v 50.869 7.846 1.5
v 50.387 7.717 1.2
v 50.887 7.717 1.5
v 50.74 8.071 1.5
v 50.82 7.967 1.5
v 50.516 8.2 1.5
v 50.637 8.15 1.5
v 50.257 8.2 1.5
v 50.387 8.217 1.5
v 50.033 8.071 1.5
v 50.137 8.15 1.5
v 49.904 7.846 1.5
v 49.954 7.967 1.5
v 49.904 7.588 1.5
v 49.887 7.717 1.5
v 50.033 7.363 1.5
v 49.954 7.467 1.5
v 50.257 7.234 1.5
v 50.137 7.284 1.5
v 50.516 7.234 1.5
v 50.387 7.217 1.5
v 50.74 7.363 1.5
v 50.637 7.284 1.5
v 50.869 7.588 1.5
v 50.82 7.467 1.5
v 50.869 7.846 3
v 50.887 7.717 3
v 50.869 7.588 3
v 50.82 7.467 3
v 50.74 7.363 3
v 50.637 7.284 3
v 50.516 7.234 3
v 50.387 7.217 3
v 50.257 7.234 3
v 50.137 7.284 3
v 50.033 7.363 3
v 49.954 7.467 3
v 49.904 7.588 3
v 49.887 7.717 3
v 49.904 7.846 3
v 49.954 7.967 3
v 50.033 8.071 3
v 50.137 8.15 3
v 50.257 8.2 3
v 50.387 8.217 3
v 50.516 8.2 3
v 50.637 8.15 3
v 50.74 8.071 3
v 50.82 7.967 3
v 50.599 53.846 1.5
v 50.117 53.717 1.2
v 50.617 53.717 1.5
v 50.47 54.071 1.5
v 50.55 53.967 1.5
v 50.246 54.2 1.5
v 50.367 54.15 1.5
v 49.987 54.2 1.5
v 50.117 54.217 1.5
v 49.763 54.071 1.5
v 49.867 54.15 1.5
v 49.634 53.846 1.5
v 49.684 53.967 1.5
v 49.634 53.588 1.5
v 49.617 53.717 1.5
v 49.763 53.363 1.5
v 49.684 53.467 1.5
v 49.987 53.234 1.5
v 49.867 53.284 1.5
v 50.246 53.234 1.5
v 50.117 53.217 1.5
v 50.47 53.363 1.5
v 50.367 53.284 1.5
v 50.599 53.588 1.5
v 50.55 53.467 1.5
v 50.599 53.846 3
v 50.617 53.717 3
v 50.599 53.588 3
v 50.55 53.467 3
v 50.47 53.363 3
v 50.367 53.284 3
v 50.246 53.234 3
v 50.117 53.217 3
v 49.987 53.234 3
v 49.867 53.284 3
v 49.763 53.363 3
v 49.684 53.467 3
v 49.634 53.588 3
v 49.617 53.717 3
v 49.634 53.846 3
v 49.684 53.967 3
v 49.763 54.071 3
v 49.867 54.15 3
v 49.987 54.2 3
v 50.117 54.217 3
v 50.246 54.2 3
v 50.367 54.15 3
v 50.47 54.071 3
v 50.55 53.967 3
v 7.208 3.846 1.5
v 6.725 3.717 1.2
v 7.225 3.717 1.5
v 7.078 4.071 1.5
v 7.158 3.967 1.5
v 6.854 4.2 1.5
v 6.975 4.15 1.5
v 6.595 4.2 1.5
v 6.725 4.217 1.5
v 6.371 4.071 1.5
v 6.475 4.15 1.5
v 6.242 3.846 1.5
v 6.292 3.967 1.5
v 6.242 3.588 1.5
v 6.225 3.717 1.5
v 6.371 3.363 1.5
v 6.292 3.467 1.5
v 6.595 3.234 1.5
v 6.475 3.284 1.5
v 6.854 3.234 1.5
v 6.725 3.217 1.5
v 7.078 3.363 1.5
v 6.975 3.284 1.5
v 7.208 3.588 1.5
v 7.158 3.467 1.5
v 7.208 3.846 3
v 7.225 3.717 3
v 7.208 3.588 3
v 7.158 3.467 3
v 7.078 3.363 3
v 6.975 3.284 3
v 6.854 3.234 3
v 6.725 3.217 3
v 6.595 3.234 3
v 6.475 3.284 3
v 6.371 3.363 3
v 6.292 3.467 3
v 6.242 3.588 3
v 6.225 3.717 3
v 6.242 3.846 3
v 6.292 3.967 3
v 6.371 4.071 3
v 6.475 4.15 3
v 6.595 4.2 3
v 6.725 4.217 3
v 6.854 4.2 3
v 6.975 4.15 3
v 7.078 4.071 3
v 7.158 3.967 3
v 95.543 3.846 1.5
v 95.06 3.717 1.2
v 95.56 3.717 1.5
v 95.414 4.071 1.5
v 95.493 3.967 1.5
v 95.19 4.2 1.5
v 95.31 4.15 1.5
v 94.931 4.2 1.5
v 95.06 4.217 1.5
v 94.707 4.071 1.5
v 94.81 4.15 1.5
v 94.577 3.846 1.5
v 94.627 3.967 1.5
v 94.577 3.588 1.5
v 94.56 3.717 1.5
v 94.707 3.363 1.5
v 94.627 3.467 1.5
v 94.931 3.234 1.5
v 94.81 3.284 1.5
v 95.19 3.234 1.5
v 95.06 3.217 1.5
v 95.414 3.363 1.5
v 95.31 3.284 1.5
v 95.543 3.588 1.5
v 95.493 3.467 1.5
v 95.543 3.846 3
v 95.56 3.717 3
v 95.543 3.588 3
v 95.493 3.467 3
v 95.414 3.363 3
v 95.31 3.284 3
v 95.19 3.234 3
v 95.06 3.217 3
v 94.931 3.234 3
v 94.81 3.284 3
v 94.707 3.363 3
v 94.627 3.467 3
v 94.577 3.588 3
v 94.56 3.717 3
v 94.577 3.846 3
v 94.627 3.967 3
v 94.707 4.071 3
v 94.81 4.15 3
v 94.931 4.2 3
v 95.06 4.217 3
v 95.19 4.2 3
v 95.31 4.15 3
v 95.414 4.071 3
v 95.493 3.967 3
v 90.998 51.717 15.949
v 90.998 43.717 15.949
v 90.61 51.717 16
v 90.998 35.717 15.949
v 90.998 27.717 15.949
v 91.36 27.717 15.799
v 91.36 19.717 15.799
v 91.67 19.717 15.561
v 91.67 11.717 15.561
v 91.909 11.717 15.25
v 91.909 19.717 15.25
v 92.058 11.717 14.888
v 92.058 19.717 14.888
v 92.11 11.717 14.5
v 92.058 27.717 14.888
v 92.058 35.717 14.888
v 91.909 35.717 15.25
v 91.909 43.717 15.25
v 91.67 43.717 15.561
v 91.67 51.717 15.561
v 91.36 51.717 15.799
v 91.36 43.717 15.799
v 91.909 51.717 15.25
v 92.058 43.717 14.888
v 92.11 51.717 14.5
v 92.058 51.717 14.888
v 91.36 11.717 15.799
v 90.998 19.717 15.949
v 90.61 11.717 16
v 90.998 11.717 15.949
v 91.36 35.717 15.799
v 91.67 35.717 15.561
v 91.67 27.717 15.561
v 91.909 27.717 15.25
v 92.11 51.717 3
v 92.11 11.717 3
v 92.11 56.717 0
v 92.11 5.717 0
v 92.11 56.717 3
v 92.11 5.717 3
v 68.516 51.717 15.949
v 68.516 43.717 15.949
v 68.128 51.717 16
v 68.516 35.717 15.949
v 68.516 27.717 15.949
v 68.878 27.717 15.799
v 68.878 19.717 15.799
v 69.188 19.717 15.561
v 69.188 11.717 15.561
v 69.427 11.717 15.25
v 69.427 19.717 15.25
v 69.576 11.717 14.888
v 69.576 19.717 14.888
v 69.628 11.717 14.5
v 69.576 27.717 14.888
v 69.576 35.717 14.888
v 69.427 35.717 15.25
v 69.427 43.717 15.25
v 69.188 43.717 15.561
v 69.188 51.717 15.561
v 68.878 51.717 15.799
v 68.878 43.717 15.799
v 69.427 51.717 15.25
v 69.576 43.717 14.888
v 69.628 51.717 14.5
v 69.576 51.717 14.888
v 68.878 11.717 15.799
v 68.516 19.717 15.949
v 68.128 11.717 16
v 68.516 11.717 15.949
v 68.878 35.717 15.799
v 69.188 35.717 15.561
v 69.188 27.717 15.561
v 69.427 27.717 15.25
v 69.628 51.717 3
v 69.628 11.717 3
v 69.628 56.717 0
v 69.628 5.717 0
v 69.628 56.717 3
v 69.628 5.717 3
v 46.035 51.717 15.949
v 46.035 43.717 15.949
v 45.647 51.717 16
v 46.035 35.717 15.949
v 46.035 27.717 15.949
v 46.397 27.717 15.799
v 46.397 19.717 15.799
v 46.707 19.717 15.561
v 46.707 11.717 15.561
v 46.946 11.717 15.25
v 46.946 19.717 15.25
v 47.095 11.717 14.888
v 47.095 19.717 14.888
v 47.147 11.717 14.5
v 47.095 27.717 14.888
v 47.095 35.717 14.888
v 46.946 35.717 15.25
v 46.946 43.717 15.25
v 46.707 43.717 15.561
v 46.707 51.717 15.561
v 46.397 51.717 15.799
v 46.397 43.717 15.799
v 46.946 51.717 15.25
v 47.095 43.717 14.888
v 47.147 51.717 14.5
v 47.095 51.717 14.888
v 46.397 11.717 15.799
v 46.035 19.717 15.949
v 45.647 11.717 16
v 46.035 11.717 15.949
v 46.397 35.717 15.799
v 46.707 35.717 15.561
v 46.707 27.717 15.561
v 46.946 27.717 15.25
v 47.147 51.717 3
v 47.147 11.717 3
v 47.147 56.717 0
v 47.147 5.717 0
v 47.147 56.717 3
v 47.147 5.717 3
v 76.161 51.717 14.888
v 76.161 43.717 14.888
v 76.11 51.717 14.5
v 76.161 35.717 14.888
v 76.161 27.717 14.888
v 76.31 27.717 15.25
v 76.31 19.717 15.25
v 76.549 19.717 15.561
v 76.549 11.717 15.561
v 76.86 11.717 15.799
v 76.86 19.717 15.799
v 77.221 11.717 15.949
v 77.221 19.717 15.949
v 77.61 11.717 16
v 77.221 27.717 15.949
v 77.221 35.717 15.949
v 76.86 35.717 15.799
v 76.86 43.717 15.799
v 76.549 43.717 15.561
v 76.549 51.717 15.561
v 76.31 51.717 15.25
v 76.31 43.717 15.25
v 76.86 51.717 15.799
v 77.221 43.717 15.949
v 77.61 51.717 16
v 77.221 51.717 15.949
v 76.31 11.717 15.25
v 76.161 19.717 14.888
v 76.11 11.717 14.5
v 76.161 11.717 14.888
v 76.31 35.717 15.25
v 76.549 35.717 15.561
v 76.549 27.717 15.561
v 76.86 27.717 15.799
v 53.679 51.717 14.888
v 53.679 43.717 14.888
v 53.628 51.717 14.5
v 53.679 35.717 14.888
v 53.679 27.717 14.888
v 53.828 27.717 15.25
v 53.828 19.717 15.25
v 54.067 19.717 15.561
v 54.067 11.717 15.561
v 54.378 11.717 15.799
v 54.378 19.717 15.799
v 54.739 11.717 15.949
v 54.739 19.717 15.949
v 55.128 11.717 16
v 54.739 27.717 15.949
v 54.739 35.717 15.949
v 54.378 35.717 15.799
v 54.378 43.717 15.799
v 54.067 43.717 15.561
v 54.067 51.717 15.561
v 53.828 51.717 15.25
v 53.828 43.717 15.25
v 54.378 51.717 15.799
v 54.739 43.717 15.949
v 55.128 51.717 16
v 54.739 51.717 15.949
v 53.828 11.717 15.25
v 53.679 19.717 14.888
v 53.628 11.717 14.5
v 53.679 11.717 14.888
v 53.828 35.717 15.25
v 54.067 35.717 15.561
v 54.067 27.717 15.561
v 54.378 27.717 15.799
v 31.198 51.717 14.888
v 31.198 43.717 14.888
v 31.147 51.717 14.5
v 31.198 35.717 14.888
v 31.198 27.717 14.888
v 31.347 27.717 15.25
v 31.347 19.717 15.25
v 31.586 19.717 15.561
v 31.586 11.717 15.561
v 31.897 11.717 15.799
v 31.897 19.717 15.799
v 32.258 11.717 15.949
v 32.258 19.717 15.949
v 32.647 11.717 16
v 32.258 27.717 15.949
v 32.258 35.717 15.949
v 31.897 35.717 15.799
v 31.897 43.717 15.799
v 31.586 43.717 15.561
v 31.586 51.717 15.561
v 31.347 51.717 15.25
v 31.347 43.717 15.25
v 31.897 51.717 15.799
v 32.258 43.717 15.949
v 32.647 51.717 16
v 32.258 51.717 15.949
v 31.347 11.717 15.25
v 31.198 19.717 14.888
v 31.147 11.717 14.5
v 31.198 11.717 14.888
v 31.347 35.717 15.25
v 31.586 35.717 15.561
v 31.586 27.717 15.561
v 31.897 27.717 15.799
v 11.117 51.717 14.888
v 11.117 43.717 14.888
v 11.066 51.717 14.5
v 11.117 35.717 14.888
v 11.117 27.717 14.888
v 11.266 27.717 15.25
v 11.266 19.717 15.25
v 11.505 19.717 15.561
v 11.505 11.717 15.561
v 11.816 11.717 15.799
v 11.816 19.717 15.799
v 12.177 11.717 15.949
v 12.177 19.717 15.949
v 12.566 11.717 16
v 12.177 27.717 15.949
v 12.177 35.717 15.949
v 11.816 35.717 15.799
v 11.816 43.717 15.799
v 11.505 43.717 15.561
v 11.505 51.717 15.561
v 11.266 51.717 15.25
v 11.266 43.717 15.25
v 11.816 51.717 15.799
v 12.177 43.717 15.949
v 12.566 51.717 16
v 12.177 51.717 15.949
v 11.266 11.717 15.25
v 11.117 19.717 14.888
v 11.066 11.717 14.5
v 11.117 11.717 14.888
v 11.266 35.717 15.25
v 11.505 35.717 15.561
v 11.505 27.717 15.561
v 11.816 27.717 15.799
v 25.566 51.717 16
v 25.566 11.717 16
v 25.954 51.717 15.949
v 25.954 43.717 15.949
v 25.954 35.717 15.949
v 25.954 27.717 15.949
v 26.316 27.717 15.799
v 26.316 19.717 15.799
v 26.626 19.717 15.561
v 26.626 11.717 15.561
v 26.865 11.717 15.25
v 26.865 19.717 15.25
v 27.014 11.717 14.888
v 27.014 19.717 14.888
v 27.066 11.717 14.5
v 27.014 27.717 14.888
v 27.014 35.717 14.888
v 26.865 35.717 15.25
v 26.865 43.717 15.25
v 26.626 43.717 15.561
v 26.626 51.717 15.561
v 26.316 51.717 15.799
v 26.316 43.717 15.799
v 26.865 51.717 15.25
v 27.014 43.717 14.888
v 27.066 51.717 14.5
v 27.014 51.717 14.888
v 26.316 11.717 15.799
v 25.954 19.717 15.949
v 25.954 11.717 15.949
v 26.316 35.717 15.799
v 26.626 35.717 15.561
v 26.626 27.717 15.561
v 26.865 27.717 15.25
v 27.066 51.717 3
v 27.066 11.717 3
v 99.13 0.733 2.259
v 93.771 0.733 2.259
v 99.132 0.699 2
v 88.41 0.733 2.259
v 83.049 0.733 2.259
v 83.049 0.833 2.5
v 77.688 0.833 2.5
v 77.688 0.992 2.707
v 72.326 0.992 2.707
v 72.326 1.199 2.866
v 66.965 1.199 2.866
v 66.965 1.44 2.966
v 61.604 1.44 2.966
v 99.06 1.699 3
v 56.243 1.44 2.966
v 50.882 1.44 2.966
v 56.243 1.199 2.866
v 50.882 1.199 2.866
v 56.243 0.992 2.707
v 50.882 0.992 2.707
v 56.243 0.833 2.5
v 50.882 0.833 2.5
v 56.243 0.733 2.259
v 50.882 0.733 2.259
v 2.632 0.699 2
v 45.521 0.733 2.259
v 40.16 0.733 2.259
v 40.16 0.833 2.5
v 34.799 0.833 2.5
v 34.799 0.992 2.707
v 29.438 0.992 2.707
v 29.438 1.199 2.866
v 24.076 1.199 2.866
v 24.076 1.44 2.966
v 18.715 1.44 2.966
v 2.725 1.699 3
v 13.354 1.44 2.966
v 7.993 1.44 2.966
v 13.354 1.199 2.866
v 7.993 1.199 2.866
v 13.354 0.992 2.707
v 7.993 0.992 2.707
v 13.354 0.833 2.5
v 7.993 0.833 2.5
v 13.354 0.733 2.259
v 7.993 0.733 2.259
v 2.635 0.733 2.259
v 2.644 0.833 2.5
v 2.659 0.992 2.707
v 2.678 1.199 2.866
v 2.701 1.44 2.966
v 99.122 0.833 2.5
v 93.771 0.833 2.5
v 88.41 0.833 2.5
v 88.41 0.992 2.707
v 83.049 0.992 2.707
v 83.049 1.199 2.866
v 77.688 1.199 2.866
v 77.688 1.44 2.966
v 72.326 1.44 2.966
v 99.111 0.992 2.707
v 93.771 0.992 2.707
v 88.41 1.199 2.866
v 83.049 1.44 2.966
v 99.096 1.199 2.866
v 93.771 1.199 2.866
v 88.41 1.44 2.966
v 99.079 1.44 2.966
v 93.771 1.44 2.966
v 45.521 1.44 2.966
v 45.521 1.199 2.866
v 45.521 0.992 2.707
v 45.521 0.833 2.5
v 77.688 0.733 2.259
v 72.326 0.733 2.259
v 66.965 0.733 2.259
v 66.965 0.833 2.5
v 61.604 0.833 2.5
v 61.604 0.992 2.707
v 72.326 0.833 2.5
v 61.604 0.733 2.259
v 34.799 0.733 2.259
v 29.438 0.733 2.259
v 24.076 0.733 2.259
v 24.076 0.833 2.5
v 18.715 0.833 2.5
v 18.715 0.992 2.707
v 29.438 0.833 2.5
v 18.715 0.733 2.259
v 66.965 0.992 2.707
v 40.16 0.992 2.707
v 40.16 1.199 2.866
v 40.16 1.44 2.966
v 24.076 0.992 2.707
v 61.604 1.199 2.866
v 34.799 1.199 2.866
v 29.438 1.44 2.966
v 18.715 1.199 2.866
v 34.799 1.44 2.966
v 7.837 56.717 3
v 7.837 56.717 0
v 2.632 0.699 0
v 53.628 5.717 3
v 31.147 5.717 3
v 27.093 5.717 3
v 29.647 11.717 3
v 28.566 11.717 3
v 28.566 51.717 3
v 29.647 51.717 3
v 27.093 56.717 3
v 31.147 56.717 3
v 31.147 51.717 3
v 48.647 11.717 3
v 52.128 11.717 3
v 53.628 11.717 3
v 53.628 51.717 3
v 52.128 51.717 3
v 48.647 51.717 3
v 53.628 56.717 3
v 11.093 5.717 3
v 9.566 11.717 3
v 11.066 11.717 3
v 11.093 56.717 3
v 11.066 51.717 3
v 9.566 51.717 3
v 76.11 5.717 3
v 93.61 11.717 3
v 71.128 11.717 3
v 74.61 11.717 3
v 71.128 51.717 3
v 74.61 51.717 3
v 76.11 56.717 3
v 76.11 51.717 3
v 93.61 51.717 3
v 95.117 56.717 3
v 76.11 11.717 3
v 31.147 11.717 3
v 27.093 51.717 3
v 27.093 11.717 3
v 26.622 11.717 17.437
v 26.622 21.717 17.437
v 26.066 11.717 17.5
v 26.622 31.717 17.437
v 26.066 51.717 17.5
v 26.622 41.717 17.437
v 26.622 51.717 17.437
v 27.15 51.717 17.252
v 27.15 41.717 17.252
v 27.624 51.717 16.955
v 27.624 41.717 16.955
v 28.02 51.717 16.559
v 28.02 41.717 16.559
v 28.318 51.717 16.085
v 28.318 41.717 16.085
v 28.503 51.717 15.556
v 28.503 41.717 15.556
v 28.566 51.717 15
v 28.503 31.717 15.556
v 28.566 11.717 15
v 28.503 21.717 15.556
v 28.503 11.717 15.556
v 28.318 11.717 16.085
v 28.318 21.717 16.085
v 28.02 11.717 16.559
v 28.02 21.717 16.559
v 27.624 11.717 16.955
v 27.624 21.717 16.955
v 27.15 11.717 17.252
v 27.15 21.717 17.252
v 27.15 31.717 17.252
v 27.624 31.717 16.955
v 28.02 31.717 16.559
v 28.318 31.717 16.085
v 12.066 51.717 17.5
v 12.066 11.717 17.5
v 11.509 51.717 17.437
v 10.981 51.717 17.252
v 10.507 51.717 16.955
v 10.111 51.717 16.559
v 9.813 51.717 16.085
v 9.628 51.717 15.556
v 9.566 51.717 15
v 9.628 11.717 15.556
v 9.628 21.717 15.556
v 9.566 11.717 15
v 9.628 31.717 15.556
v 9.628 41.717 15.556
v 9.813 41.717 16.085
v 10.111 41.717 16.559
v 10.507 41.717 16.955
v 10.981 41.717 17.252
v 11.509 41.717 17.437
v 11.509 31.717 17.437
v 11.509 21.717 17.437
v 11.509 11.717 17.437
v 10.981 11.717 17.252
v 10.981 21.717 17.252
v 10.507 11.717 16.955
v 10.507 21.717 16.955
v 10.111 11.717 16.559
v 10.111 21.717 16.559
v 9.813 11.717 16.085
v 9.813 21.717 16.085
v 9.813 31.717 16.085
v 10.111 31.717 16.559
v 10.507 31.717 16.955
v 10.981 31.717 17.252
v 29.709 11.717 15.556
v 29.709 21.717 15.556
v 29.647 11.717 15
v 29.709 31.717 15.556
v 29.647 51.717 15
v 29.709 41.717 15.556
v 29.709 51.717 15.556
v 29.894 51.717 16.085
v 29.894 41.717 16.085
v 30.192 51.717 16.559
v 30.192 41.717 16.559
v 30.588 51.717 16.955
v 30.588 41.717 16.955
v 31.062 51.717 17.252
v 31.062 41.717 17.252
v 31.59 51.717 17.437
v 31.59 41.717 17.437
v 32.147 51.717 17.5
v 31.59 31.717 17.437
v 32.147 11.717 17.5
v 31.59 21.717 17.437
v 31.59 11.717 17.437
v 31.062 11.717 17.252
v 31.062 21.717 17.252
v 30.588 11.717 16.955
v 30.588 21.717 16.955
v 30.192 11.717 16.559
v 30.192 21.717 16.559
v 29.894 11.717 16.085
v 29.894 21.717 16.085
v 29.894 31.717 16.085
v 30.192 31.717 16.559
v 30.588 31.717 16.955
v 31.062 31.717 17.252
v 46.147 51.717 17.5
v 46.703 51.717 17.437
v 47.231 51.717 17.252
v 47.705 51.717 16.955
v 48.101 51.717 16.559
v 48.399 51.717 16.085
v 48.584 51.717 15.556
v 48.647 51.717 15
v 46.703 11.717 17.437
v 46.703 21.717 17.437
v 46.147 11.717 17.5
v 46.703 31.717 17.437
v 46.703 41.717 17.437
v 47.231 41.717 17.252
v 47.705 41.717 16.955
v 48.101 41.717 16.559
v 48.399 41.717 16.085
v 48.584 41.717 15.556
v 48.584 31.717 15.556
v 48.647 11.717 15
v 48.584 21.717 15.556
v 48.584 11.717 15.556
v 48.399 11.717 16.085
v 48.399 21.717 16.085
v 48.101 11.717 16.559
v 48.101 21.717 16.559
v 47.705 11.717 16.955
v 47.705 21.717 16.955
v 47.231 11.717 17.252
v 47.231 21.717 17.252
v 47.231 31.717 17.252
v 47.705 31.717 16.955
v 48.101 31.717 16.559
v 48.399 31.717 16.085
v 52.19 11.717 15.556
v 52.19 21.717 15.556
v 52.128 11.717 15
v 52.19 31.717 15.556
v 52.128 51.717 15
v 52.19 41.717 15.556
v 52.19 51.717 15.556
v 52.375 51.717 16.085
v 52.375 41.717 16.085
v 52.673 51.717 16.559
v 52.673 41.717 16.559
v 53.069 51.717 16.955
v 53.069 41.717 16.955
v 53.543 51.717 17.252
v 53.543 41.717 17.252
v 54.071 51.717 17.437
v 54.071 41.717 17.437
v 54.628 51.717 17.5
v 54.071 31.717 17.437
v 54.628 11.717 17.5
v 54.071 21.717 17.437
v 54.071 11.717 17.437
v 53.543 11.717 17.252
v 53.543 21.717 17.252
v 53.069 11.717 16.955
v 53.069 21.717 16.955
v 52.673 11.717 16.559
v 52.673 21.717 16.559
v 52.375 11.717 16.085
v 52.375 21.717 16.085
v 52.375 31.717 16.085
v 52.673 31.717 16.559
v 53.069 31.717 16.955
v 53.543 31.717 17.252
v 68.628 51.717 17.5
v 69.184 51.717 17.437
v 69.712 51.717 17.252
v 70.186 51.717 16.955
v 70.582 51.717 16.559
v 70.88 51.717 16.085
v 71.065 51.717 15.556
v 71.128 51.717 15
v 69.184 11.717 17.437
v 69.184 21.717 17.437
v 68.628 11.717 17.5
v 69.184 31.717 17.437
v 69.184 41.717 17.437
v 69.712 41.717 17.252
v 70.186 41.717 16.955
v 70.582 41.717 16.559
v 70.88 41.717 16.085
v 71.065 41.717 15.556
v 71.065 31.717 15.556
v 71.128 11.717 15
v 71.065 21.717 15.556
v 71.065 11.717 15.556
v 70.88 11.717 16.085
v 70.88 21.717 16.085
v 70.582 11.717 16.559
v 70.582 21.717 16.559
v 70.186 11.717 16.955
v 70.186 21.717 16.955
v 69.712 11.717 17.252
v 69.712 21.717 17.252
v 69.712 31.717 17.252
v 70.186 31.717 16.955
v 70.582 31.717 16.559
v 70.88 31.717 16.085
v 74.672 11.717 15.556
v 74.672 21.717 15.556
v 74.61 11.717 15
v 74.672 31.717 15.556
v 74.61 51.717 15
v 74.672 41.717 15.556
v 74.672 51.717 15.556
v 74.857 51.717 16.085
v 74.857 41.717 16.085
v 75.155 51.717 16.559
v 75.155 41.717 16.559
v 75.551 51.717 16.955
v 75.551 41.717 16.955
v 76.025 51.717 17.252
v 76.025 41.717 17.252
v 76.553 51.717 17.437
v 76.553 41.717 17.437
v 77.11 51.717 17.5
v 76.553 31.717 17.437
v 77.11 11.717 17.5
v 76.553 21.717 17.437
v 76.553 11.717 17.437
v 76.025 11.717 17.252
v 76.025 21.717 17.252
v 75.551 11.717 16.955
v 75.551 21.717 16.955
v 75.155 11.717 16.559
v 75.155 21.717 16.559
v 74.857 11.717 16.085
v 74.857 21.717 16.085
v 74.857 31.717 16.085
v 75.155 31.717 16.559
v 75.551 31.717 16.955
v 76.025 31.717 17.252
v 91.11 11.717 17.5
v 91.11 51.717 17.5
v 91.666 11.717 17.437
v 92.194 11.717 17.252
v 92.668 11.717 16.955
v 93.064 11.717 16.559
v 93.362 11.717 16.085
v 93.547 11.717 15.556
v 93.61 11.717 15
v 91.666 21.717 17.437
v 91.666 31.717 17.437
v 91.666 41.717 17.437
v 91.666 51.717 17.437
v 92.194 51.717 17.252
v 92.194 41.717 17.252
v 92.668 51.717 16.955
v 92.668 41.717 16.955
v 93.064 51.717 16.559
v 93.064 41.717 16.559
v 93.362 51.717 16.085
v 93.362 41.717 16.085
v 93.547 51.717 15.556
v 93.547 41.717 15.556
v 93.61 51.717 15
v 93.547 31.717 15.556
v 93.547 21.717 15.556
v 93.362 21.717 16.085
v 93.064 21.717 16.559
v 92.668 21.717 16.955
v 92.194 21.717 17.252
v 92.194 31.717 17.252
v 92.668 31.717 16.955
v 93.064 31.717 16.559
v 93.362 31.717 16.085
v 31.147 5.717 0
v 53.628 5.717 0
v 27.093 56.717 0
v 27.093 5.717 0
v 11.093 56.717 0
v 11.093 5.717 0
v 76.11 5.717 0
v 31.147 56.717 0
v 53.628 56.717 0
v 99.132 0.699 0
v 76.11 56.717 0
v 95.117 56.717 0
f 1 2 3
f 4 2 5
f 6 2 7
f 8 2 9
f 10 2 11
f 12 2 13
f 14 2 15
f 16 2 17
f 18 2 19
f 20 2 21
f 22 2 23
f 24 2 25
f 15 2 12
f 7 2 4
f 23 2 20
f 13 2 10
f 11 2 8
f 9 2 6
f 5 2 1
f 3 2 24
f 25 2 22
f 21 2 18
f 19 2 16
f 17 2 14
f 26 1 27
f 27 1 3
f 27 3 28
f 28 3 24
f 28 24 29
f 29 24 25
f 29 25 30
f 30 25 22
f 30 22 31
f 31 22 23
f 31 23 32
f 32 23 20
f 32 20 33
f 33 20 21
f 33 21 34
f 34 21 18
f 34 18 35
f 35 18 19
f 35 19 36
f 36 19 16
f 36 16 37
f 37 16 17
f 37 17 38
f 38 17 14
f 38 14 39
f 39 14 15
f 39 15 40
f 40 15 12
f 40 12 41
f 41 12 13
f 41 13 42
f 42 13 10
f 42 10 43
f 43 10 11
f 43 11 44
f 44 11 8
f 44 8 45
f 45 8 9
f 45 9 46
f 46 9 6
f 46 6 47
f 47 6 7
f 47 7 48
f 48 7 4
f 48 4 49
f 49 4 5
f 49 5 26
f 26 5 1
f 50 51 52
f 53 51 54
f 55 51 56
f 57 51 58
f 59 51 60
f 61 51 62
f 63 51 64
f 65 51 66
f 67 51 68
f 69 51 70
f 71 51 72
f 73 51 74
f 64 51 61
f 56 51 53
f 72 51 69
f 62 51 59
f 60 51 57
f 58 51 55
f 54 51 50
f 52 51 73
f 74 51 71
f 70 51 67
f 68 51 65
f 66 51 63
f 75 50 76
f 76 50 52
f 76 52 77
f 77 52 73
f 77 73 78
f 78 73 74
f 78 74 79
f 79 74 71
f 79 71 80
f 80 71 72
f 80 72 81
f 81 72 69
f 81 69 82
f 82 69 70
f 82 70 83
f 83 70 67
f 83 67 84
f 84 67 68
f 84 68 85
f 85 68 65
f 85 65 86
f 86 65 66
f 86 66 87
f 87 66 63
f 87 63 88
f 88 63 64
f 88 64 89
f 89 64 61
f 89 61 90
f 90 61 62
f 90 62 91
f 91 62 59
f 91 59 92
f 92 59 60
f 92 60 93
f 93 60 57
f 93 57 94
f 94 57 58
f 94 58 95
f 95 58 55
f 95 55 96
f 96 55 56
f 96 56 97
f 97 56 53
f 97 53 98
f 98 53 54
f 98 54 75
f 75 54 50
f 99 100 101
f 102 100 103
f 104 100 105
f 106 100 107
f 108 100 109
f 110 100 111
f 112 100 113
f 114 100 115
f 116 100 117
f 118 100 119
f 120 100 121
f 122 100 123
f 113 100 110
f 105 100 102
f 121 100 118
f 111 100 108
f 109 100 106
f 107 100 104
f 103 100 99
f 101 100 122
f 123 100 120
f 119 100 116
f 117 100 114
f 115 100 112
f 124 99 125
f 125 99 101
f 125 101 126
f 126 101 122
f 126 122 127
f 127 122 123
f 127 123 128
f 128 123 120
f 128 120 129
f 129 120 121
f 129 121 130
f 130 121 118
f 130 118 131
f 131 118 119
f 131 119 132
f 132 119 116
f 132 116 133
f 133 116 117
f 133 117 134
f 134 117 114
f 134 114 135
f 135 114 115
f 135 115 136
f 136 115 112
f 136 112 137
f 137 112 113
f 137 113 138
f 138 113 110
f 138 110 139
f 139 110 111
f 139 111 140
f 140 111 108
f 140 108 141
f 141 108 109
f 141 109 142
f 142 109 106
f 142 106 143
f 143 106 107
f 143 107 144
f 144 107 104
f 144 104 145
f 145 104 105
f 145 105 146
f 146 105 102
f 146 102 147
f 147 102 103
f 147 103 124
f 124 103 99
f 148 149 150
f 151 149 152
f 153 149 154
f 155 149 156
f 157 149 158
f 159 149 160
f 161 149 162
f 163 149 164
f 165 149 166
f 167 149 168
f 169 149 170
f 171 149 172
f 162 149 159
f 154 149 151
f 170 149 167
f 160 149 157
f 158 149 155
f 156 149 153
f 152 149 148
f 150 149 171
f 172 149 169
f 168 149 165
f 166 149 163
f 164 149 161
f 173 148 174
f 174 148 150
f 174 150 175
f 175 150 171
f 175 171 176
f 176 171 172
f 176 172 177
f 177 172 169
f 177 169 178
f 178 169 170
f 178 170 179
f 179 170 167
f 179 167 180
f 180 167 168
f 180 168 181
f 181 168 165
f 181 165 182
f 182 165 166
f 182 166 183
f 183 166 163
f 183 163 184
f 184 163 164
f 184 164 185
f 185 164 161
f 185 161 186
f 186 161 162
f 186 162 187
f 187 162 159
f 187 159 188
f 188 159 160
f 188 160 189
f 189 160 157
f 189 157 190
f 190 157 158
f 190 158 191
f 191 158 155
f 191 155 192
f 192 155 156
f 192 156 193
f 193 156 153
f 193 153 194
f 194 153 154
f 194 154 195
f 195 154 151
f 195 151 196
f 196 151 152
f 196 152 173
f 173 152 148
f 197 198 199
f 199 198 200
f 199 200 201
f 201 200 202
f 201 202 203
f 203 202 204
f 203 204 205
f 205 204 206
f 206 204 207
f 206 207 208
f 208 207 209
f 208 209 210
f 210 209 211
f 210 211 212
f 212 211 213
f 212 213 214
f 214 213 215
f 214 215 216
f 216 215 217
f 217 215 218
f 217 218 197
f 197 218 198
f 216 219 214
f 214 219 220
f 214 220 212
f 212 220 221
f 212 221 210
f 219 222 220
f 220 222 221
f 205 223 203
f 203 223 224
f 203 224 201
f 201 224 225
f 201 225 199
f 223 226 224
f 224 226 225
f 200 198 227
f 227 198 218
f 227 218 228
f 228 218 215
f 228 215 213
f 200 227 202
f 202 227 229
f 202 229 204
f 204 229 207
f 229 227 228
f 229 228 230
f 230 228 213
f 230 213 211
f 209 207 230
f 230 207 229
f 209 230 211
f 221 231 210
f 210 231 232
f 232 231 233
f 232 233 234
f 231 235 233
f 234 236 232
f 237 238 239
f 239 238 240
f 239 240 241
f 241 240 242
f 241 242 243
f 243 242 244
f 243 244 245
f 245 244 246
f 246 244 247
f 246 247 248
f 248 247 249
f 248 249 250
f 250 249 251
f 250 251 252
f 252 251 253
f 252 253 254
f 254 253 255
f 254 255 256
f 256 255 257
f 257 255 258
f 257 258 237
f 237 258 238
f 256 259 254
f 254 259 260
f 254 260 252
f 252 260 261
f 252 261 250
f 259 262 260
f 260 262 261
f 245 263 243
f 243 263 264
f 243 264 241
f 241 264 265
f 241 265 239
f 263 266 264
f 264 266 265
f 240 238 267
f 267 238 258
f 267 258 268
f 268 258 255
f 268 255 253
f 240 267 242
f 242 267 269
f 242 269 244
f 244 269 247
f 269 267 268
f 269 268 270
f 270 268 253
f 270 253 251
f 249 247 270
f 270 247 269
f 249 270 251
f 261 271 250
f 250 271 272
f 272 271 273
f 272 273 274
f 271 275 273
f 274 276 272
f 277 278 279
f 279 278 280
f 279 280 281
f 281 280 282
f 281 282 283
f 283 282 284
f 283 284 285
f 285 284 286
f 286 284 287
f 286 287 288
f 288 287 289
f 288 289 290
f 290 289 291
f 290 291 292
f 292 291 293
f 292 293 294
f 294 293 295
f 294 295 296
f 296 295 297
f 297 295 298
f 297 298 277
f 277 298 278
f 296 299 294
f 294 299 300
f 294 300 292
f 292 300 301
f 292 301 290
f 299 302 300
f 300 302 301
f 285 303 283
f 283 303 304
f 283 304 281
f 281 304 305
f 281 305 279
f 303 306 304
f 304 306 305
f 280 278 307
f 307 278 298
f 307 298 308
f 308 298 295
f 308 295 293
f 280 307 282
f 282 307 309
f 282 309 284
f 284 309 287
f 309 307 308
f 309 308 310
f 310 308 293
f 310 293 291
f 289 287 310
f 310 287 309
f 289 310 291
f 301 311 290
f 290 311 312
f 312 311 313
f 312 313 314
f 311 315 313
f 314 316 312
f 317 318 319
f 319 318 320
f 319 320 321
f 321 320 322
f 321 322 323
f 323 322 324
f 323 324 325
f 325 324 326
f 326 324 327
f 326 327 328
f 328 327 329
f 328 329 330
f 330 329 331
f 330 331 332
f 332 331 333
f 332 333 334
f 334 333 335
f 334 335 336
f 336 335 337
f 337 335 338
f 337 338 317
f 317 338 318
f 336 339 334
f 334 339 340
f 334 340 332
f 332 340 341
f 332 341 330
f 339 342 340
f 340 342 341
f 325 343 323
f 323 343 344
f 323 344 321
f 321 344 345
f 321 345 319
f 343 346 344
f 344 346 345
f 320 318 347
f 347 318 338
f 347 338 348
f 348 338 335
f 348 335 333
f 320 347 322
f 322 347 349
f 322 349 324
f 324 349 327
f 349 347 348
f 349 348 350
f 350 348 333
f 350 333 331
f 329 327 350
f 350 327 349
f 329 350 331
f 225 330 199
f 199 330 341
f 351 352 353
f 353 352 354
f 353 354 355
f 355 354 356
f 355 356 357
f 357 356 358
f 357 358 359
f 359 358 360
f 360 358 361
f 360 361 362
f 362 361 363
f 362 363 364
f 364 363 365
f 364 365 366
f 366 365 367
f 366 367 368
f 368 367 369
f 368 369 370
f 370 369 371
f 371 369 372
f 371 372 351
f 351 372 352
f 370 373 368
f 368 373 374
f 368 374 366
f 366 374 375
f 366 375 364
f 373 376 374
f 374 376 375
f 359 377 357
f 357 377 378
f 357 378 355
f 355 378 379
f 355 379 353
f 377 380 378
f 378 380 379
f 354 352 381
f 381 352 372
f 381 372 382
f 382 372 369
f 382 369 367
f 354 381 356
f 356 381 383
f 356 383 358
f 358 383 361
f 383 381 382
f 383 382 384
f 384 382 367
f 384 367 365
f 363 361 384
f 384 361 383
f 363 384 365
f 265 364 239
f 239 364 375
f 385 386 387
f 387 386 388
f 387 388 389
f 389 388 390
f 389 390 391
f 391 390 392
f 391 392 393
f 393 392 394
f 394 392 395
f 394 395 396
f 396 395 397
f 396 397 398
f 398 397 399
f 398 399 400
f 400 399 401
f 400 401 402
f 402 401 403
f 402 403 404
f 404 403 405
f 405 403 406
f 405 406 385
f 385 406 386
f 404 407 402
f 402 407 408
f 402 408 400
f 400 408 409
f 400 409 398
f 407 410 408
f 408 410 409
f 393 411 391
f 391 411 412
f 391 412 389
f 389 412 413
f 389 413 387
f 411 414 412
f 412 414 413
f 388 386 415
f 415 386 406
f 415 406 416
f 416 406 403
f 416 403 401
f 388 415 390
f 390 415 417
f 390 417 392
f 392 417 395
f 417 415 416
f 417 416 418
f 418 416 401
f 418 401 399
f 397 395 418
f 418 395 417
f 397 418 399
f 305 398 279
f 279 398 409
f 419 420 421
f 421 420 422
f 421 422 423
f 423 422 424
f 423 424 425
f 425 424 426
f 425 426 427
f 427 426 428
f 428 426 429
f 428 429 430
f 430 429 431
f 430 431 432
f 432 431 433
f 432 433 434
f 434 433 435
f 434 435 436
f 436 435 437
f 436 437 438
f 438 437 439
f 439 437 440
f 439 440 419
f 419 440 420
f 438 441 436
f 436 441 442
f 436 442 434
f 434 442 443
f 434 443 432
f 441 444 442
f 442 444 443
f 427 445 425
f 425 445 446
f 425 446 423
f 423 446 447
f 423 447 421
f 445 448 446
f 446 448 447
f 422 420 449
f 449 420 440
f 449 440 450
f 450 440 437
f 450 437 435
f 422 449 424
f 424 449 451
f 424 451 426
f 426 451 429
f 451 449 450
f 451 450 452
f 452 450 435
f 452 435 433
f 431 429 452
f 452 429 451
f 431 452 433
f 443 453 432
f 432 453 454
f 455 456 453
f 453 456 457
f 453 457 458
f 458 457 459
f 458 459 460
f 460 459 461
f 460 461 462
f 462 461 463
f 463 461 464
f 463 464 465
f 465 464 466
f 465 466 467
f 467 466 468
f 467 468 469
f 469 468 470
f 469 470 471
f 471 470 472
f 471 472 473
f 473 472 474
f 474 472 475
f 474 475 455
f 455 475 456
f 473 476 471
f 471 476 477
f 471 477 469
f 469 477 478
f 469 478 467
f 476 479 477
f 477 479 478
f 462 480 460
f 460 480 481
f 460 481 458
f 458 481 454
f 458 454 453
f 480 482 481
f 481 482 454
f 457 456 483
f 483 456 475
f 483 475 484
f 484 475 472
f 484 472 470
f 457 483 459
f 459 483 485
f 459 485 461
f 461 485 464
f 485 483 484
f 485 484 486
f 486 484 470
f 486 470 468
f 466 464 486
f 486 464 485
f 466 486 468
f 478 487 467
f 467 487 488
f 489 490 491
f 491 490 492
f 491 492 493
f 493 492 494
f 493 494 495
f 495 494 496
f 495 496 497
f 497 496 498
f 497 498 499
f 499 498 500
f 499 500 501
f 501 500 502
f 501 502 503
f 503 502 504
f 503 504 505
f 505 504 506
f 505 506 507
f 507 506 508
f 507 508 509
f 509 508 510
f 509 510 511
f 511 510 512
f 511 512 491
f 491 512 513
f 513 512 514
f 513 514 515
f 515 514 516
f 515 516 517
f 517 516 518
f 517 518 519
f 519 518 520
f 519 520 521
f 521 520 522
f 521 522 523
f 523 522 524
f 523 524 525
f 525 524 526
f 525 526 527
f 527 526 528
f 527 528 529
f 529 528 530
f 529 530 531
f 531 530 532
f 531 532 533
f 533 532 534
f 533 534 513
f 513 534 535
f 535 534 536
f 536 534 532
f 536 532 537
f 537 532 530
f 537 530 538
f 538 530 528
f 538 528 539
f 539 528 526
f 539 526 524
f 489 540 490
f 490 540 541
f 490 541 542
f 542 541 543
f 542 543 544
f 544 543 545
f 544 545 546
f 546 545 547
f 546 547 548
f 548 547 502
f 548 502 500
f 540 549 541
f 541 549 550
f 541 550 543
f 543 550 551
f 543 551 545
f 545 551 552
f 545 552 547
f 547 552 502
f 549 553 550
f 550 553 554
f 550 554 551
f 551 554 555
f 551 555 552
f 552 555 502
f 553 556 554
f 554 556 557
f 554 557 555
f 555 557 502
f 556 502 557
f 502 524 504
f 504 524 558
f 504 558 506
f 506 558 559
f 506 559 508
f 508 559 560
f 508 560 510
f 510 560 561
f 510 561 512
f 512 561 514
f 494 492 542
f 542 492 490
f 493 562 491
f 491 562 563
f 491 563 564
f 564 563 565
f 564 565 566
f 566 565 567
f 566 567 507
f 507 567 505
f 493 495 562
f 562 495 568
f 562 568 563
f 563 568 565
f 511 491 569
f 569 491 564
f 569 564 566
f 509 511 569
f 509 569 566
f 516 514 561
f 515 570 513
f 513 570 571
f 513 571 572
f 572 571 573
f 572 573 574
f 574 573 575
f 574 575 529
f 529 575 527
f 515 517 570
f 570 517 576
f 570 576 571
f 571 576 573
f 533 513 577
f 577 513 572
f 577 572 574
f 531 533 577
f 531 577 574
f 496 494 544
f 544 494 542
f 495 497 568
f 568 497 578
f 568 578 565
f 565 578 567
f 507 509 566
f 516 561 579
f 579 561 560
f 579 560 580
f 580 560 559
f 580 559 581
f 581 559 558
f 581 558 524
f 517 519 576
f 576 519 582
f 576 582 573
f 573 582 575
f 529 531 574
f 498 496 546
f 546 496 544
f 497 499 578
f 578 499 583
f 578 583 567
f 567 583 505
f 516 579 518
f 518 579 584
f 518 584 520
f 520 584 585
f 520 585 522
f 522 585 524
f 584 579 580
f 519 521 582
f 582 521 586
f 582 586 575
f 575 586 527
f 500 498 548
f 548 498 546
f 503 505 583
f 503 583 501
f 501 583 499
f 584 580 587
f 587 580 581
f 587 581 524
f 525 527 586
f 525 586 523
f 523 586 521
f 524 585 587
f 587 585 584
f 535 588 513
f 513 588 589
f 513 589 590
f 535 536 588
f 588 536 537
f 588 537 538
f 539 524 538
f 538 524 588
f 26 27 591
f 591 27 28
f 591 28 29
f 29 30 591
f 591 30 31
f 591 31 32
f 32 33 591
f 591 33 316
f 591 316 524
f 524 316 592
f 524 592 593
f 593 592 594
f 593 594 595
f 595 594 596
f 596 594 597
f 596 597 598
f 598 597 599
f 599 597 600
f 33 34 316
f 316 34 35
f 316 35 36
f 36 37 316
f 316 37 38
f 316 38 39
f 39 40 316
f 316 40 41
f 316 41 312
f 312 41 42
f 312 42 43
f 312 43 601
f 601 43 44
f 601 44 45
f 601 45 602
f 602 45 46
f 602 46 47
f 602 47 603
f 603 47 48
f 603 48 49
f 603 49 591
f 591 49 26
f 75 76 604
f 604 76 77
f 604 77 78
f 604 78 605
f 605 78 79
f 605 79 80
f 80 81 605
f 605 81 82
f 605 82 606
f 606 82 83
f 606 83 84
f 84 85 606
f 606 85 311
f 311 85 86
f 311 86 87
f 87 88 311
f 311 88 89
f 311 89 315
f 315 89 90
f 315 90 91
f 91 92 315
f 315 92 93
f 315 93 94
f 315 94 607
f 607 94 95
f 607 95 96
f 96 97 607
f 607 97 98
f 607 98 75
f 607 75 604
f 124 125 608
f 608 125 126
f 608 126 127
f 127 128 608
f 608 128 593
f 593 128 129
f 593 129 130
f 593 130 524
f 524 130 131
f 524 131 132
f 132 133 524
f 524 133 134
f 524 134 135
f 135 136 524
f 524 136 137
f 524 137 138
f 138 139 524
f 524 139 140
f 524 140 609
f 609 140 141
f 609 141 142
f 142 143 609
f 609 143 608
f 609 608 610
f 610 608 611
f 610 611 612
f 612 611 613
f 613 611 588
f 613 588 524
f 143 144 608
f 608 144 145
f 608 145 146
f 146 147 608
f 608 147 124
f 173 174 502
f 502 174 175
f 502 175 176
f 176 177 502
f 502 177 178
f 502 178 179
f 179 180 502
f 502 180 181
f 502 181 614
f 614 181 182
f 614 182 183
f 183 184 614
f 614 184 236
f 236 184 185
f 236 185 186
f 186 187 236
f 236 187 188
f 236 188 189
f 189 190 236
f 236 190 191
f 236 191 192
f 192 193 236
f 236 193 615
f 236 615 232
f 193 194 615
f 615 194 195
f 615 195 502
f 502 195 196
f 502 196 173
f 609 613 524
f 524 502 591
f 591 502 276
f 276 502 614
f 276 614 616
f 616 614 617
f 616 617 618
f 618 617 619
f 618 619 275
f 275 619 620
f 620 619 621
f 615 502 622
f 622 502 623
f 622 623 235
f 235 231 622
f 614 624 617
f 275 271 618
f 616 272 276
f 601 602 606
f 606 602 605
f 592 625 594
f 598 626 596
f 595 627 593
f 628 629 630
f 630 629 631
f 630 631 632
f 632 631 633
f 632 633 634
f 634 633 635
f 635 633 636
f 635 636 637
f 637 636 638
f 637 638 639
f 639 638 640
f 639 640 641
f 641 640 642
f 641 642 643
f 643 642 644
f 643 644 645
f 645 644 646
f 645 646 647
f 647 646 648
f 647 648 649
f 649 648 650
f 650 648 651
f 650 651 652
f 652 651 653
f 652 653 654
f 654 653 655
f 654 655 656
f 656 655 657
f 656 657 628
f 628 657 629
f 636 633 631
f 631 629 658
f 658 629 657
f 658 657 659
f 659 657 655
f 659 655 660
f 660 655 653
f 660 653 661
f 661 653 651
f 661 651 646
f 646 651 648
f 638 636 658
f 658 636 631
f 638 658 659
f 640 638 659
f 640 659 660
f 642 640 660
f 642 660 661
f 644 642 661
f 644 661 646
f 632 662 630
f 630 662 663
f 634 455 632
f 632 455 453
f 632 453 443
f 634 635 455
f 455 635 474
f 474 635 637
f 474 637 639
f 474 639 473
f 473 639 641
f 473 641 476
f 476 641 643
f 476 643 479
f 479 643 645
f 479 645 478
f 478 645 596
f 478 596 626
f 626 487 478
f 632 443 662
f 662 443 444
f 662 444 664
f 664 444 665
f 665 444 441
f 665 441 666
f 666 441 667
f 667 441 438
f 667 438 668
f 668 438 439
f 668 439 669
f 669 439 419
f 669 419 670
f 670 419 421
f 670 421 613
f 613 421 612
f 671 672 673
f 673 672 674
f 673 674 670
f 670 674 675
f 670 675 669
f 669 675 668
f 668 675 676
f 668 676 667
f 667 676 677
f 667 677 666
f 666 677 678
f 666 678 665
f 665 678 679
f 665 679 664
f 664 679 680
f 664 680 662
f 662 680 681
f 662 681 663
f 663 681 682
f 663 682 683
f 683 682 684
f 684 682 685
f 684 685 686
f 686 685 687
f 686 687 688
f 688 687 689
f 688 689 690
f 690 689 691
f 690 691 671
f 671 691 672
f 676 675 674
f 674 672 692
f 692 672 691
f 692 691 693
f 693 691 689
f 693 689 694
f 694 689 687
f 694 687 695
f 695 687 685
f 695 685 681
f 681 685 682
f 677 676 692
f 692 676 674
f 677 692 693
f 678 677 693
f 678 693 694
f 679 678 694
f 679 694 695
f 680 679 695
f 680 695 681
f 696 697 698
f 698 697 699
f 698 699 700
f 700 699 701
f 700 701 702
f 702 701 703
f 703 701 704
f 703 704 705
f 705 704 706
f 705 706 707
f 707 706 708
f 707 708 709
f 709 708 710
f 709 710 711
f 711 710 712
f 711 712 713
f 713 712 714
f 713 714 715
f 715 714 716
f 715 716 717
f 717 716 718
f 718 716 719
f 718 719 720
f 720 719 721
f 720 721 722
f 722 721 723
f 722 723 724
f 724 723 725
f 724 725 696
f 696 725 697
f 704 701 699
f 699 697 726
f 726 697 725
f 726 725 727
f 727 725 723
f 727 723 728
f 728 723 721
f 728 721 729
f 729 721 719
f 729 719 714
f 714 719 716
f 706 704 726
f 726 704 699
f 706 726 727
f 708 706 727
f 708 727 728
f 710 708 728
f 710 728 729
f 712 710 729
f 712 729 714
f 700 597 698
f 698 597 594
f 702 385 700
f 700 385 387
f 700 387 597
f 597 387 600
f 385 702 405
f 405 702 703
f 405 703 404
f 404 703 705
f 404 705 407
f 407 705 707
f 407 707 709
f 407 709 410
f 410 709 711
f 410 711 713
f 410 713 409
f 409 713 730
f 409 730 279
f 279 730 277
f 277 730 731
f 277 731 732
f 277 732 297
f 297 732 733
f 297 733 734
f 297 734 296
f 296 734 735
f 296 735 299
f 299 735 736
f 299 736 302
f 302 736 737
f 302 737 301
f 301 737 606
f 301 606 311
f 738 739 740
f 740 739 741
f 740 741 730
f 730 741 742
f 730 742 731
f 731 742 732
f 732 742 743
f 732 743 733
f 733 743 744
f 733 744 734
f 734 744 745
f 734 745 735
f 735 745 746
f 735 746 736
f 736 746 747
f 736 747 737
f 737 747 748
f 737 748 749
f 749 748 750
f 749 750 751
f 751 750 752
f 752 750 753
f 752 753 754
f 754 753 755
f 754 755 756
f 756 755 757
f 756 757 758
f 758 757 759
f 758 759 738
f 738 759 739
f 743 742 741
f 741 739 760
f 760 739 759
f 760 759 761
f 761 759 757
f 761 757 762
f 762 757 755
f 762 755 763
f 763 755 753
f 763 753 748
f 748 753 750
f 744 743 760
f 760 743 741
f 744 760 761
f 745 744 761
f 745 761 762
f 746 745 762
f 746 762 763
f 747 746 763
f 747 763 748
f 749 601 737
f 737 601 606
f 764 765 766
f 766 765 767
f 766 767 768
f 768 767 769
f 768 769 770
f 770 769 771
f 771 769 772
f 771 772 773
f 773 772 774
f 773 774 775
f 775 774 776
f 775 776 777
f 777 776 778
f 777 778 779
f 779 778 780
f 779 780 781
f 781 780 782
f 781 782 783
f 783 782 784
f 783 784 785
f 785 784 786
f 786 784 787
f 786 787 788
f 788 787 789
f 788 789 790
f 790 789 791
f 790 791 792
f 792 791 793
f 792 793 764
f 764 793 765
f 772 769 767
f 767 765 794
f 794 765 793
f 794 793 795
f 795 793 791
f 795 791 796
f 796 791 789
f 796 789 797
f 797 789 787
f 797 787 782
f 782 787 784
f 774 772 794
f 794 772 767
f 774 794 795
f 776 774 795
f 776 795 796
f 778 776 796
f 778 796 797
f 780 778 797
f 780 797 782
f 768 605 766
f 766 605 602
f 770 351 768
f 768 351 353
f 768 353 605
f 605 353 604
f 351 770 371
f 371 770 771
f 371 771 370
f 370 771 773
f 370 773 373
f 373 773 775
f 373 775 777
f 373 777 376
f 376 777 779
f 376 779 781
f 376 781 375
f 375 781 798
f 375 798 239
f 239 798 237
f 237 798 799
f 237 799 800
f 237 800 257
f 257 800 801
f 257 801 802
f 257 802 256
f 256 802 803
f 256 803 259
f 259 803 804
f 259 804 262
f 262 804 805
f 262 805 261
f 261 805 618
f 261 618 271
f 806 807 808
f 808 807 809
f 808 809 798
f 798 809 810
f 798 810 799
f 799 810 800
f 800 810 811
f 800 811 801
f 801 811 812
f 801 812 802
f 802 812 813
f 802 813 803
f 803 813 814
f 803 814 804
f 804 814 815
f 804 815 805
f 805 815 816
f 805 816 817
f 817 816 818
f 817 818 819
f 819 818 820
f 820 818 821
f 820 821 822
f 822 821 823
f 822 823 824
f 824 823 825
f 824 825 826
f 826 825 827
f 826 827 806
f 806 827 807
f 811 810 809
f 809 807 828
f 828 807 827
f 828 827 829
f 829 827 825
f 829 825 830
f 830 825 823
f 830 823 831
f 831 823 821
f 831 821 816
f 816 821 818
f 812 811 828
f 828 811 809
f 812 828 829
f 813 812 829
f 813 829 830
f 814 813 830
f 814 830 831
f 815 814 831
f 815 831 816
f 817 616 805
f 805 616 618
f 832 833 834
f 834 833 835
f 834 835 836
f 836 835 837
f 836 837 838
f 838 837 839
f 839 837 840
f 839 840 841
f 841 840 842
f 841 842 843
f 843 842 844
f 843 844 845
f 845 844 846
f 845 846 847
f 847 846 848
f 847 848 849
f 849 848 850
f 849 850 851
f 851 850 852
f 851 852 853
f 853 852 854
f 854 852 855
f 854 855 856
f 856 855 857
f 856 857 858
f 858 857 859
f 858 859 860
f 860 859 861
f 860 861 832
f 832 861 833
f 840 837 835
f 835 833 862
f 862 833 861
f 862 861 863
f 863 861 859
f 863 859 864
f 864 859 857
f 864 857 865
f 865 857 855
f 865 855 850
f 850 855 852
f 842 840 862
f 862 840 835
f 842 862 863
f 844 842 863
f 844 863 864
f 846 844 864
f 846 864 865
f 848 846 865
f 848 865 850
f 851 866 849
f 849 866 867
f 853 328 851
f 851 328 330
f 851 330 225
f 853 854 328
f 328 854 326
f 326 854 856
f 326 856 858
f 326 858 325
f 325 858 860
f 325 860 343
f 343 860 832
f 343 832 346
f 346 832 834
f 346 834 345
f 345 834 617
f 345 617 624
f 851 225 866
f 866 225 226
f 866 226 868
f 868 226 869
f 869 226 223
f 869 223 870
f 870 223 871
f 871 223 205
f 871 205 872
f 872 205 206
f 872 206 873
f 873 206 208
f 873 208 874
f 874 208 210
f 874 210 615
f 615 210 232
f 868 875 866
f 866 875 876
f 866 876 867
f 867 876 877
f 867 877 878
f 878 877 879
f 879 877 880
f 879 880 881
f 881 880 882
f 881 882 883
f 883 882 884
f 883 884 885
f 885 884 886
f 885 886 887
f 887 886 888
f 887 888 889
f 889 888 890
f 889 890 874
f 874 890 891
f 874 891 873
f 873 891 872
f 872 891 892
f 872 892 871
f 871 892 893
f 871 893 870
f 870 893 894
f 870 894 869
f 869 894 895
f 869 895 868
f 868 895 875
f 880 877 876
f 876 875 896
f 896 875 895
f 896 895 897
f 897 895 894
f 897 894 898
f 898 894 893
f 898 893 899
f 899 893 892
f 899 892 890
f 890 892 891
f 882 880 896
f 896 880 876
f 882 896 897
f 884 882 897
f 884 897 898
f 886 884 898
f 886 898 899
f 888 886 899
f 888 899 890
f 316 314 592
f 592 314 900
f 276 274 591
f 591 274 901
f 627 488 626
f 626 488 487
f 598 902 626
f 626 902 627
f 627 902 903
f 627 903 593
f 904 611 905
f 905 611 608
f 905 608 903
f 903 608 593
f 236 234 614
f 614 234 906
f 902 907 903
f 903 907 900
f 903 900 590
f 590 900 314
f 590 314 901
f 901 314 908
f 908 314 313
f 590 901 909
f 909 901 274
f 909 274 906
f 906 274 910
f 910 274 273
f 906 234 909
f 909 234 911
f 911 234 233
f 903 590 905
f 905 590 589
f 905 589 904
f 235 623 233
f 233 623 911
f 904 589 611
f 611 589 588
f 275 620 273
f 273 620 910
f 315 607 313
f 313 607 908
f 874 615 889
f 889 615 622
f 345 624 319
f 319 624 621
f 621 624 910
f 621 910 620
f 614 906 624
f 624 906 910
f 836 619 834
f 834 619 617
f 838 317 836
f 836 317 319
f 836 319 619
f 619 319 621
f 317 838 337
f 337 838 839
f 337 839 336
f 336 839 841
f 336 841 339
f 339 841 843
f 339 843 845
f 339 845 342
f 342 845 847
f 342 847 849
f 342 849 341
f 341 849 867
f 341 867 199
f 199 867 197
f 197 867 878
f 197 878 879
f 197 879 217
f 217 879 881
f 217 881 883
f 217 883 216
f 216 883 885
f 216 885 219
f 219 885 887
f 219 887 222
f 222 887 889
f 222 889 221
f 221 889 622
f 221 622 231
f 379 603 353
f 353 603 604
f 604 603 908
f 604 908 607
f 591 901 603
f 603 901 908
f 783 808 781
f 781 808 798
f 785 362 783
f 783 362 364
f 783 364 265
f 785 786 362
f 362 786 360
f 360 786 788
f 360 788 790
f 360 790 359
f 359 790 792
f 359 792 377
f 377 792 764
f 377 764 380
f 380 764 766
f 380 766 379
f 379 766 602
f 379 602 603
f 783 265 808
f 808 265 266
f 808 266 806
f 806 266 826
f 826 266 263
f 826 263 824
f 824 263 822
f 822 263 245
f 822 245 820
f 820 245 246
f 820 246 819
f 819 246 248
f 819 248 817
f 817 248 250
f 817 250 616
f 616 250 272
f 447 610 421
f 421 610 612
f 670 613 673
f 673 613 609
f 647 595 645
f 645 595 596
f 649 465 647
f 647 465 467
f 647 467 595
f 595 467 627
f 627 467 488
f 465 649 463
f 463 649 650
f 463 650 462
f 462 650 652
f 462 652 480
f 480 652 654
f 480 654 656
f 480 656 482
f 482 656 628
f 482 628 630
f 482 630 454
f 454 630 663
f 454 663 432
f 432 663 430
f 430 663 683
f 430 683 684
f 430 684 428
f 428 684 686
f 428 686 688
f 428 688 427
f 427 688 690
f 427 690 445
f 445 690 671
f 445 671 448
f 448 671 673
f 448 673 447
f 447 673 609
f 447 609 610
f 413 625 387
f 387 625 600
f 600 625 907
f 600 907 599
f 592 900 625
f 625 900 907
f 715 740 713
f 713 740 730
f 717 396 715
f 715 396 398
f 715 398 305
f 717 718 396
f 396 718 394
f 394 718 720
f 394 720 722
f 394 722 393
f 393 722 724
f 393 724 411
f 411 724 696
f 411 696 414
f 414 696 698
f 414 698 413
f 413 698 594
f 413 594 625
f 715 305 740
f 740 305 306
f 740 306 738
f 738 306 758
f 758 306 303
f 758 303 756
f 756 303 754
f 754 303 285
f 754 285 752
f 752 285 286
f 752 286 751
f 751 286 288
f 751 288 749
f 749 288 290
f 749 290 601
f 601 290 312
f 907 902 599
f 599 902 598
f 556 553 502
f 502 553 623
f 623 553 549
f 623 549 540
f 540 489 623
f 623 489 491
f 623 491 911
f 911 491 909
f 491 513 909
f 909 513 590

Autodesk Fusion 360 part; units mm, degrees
sketch "Sketch1" plane through (0, 0, 0) normal (0, 0, 1) x (1, 0, 0)
  line L0 (7.8365, 56.717) -> (95.1165, 56.717)
  line L1 (95.1165, 56.717) -> (99.132, 0.6987)
  line L2 (99.132, 0.6987) -> (2.632, 0.6987)
  line L3 (2.632, 0.6987) -> (7.8365, 56.717)
  dimension "d1" = 87.28
  dimension "d2" = 96.5
  dimension "d3" = 95.308
  dimension "d4" = 94.1
extrude "Extrude1" add sketch "Sketch1" along normal blind 3
sketch "Sketch2" plane through (0, 56.717, 0) normal (0, 1, 0) x (-1, 0, 0)
  line L0 (-95.1165, 0) -> (-7.8365, 0)
  line L1 (-7.8365, 0) -> (-7.8365, 3)
  line L2 (-7.8365, 3) -> (-95.1165, 3)
  line L3 (-95.1165, 3) -> (-95.1165, 0)
  line L4 (-92.1095, 3) -> (-92.1095, 16)
  line L5 (-92.1095, 16) -> (-76.1095, 16)
  line L6 (-76.1095, 16) -> (-76.1095, 3)
  line L7 (-69.6275, 3) -> (-69.6275, 16)
  line L8 (-69.6275, 16) -> (-53.6275, 16)
  line L9 (-53.6275, 16) -> (-53.6275, 3)
  line L10 (-47.1465, 3) -> (-47.1465, 16)
  line L11 (-47.1465, 16) -> (-31.1465, 16)
  line L12 (-31.1465, 16) -> (-31.1465, 3)
  line L13 (-27.0655, 3) -> (-27.0655, 16)
  line L14 (-27.0655, 16) -> (-11.0655, 16)
  line L15 (-11.0655, 16) -> (-11.0655, 3)
  line L16 (-74.6095, 17.5) -> (-74.6095, 3)
  line L17 (-71.1275, 3) -> (-71.1275, 17.5)
  line L18 (-48.6465, 3) -> (-48.6465, 17.5)
  line L19 (-48.6465, 17.5) -> (-29.6465, 17.5)
  line L20 (-29.6465, 17.5) -> (-29.6465, 3)
  line L21 (-28.5655, 3) -> (-28.5655, 17.5)
  line L22 (-28.5655, 17.5) -> (-9.5655, 17.5)
  line L23 (-9.5655, 17.5) -> (-9.5655, 3)
  line L24 (-74.6095, 17.5) -> (-93.6095, 17.5)
  line L25 (-93.6095, 17.5) -> (-93.6095, 3)
  line L26 (-71.1275, 17.5) -> (-52.1275, 17.5)
  line L27 (-52.1275, 17.5) -> (-52.1275, 3)
  dimension "d7" = 3.007
  dimension "d11" = 16
  dimension "d12" = 6.482
  dimension "d13" = 16
  dimension "d14" = 6.481
  dimension "d15" = 16
  dimension "d16" = 4.081
  dimension "d17" = 16
  dimension "d18" = 13
  dimension "d19" = 13
  dimension "d20" = 13
  dimension "d21" = 13
  dimension "d23" = 1.5
  dimension "d24" = 1.5
  dimension "d25" = 1.5
  dimension "d26" = 1.5
  dimension "d28" = 1.5
  dimension "d29" = 1.5
  dimension "d30" = 1.5
  dimension "d31" = 1.5
  dimension "d32" = 1.5
  dimension "d33" = 1.5
  dimension "d34" = 1.5
  dimension "d35" = 1.5
extrude "Extrude2" add sketch "Sketch2" against normal blind 40 from surface at -5 contours L2 L4 L5 L6 L16 L24 L25 | L2 L13 L14 L15 L21 L22 L23 | L2 L7 L8 L9 L17 L26 L27 | L2 L10 L11 L12 L18 L19 L20
sketch "Sketch3" plane through (0, 56.717, 0) normal (0, 1, 0) x (-1, 0, 0)
  line L0 (-95.1165, 0) -> (-7.8365, 0)
  line L1 (-7.8365, 0) -> (-7.8365, 3)
  line L2 (-7.8365, 3) -> (-95.1165, 3)
  line L3 (-95.1165, 3) -> (-95.1165, 0)
  line L4 (-92.1095, 3) -> (-76.1095, 3)
  line L5 (-76.1095, 0) -> (-92.1095, 0)
  line L6 (-92.1095, 3) -> (-92.1095, 0)
  line L7 (-76.1095, 3) -> (-76.1095, 0)
  line L8 (-69.6275, 3) -> (-69.6275, 0)
  line L9 (-69.6275, 3) -> (-53.6275, 3)
  line L10 (-53.6275, 0) -> (-53.6275, 3)
  line L11 (-53.6275, 0) -> (-69.6275, 0)
  line L12 (-47.1465, 3) -> (-47.1465, 0)
  line L13 (-47.1465, 3) -> (-31.1465, 3)
  line L14 (-31.1465, 0) -> (-31.1465, 3)
  line L15 (-31.1465, 0) -> (-47.1465, 0)
  line L16 (-27.0925, 3) -> (-11.0925, 3)
  line L17 (-11.0925, 0) -> (-11.0925, 3)
  line L18 (-11.0925, 0) -> (-27.0925, 0)
  line L19 (-27.0925, 3) -> (-27.0925, 0)
  dimension "d39" = 16
  dimension "d40" = 16
  dimension "d41" = 16
  dimension "d42" = 16
  dimension "d43" = 3.007
  dimension "d44" = 6.482
  dimension "d45" = 6.481
  dimension "d46" = 4.054
extrude "Extrude3" cut sketch "Sketch3" against normal blind 51 contours L0 L2 L4 L5 L6 L7 | L0 L2 L8 L9 L10 L11 | L0 L2 L12 L13 L14 L15 | L0 L2 L16 L17 L18 L19
fillet "Fillet1" radius 2.5 1 edges at (93.6095, 31.717, 17.5)
fillet "Fillet2" radius 2.5 7 edges at (74.6095, 31.717, 17.5) (71.1275, 31.717, 17.5) (52.1275, 31.717, 17.5) (48.6465, 31.717, 17.5) (29.6465, 31.717, 17.5) (9.5655, 31.717, 17.5) (28.5655, 31.717, 17.5)
fillet "Fillet3" radius 1 1 edges at (50.882, 0.6987, 3)
fillet "Fillet4" radius 1.5 2 edges at (27.0655, 31.717, 16) (11.0655, 31.717, 16)
fillet "Fillet4" radius 1.5 6 edges at (31.1465, 31.717, 16) (53.6275, 31.717, 16) (76.1095, 31.717, 16) (47.1465, 31.717, 16) (69.6275, 31.717, 16) (92.1095, 31.717, 16)
sketch "Sketch4" plane through (0, 0, 3) normal (0, 0, 1) x (-1, 0, 0)
  line L0 (-9.5655, -11.717) -> (-9.5655, -51.717)
  line L1 (-9.5655, -51.717) -> (-11.0655, -51.717)
  line L2 (-11.0655, -51.717) -> (-11.0655, -11.717)
  line L3 (-11.0655, -11.717) -> (-9.5655, -11.717)
  line L4 (-2.7249, -1.6987) -> (-99.0603, -1.6987)
  line L5 (-99.0603, -1.6987) -> (-95.1165, -56.717)
  line L6 (-95.1165, -56.717) -> (-92.1095, -56.717)
  line L7 (-92.1095, -56.717) -> (-92.1095, -51.717)
  line L8 (-92.1095, -51.717) -> (-93.6095, -51.717)
  line L9 (-93.6095, -51.717) -> (-93.6095, -11.717)
  line L10 (-93.6095, -11.717) -> (-92.1095, -11.717)
  line L11 (-92.1095, -11.717) -> (-92.1095, -5.717)
  line L12 (-92.1095, -5.717) -> (-76.1095, -5.717)
  line L13 (-76.1095, -5.717) -> (-76.1095, -11.717)
  line L14 (-76.1095, -11.717) -> (-74.6095, -11.717)
  line L15 (-74.6095, -11.717) -> (-74.6095, -51.717)
  line L16 (-74.6095, -51.717) -> (-76.1095, -51.717)
  line L17 (-76.1095, -51.717) -> (-76.1095, -56.717)
  line L18 (-76.1095, -56.717) -> (-69.6275, -56.717)
  line L19 (-69.6275, -56.717) -> (-69.6275, -51.717)
  line L20 (-69.6275, -51.717) -> (-71.1275, -51.717)
  line L21 (-71.1275, -51.717) -> (-71.1275, -11.717)
  line L22 (-71.1275, -11.717) -> (-69.6275, -11.717)
  line L23 (-69.6275, -11.717) -> (-69.6275, -5.717)
  line L24 (-69.6275, -5.717) -> (-53.6275, -5.717)
  line L25 (-53.6275, -5.717) -> (-53.6275, -11.717)
  line L26 (-53.6275, -11.717) -> (-52.1275, -11.717)
  line L27 (-52.1275, -11.717) -> (-52.1275, -51.717)
  line L28 (-52.1275, -51.717) -> (-53.6275, -51.717)
  line L29 (-53.6275, -51.717) -> (-53.6275, -56.717)
  line L30 (-53.6275, -56.717) -> (-47.1465, -56.717)
  line L31 (-47.1465, -56.717) -> (-47.1465, -51.717)
  line L32 (-47.1465, -51.717) -> (-48.6465, -51.717)
  line L33 (-48.6465, -51.717) -> (-48.6465, -11.717)
  line L34 (-48.6465, -11.717) -> (-47.1465, -11.717)
  line L35 (-47.1465, -11.717) -> (-47.1465, -5.717)
  line L36 (-47.1465, -5.717) -> (-31.1465, -5.717)
  line L37 (-31.1465, -5.717) -> (-31.1465, -11.717)
  line L38 (-31.1465, -11.717) -> (-29.6465, -11.717)
  line L39 (-29.6465, -11.717) -> (-29.6465, -51.717)
  line L40 (-29.6465, -51.717) -> (-31.1465, -51.717)
  line L41 (-31.1465, -51.717) -> (-31.1465, -56.717)
  line L42 (-31.1465, -56.717) -> (-27.0925, -56.717)
  line L43 (-27.0925, -56.717) -> (-27.0925, -51.717)
  line L44 (-27.0925, -51.717) -> (-28.5655, -51.717)
  line L45 (-28.5655, -51.717) -> (-28.5655, -11.717)
  line L46 (-28.5655, -11.717) -> (-27.0925, -11.717)
  line L47 (-27.0925, -11.717) -> (-27.0925, -5.717)
  line L48 (-27.0925, -5.717) -> (-11.0925, -5.717)
  line L49 (-11.0925, -5.717) -> (-11.0925, -56.717)
  line L50 (-11.0925, -56.717) -> (-7.8365, -56.717)
  line L51 (-7.8365, -56.717) -> (-2.7249, -1.6987)
  circle A0 centre (-50.1165, -53.717) radius 0.6186
  circle A1 centre (-6.7249, -3.717) radius 0.5
  circle A2 centre (-95.0603, -3.717) radius 0.5
  circle A3 centre (-50.3865, -7.717) radius 0.5
  dimension "d59" = 3
  dimension "d60" = 3.511
  dimension "d61" = 1
  dimension "d63" = 2
  dimension "d64" = 4
  dimension "d65" = 1
  dimension "d66" = 4
  dimension "d67" = 2
  dimension "d68" = 1
  dimension "d69" = 3.24
  dimension "d70" = 2
hole "Hole1" at (50.1165, 53.717, 3) at (6.7249, 3.717, 3) at (50.3865, 7.717, 3) at (95.0603, 3.717, 3) direction (0, 0, -1) diameter 1 depth 1.5 tip angle 118
